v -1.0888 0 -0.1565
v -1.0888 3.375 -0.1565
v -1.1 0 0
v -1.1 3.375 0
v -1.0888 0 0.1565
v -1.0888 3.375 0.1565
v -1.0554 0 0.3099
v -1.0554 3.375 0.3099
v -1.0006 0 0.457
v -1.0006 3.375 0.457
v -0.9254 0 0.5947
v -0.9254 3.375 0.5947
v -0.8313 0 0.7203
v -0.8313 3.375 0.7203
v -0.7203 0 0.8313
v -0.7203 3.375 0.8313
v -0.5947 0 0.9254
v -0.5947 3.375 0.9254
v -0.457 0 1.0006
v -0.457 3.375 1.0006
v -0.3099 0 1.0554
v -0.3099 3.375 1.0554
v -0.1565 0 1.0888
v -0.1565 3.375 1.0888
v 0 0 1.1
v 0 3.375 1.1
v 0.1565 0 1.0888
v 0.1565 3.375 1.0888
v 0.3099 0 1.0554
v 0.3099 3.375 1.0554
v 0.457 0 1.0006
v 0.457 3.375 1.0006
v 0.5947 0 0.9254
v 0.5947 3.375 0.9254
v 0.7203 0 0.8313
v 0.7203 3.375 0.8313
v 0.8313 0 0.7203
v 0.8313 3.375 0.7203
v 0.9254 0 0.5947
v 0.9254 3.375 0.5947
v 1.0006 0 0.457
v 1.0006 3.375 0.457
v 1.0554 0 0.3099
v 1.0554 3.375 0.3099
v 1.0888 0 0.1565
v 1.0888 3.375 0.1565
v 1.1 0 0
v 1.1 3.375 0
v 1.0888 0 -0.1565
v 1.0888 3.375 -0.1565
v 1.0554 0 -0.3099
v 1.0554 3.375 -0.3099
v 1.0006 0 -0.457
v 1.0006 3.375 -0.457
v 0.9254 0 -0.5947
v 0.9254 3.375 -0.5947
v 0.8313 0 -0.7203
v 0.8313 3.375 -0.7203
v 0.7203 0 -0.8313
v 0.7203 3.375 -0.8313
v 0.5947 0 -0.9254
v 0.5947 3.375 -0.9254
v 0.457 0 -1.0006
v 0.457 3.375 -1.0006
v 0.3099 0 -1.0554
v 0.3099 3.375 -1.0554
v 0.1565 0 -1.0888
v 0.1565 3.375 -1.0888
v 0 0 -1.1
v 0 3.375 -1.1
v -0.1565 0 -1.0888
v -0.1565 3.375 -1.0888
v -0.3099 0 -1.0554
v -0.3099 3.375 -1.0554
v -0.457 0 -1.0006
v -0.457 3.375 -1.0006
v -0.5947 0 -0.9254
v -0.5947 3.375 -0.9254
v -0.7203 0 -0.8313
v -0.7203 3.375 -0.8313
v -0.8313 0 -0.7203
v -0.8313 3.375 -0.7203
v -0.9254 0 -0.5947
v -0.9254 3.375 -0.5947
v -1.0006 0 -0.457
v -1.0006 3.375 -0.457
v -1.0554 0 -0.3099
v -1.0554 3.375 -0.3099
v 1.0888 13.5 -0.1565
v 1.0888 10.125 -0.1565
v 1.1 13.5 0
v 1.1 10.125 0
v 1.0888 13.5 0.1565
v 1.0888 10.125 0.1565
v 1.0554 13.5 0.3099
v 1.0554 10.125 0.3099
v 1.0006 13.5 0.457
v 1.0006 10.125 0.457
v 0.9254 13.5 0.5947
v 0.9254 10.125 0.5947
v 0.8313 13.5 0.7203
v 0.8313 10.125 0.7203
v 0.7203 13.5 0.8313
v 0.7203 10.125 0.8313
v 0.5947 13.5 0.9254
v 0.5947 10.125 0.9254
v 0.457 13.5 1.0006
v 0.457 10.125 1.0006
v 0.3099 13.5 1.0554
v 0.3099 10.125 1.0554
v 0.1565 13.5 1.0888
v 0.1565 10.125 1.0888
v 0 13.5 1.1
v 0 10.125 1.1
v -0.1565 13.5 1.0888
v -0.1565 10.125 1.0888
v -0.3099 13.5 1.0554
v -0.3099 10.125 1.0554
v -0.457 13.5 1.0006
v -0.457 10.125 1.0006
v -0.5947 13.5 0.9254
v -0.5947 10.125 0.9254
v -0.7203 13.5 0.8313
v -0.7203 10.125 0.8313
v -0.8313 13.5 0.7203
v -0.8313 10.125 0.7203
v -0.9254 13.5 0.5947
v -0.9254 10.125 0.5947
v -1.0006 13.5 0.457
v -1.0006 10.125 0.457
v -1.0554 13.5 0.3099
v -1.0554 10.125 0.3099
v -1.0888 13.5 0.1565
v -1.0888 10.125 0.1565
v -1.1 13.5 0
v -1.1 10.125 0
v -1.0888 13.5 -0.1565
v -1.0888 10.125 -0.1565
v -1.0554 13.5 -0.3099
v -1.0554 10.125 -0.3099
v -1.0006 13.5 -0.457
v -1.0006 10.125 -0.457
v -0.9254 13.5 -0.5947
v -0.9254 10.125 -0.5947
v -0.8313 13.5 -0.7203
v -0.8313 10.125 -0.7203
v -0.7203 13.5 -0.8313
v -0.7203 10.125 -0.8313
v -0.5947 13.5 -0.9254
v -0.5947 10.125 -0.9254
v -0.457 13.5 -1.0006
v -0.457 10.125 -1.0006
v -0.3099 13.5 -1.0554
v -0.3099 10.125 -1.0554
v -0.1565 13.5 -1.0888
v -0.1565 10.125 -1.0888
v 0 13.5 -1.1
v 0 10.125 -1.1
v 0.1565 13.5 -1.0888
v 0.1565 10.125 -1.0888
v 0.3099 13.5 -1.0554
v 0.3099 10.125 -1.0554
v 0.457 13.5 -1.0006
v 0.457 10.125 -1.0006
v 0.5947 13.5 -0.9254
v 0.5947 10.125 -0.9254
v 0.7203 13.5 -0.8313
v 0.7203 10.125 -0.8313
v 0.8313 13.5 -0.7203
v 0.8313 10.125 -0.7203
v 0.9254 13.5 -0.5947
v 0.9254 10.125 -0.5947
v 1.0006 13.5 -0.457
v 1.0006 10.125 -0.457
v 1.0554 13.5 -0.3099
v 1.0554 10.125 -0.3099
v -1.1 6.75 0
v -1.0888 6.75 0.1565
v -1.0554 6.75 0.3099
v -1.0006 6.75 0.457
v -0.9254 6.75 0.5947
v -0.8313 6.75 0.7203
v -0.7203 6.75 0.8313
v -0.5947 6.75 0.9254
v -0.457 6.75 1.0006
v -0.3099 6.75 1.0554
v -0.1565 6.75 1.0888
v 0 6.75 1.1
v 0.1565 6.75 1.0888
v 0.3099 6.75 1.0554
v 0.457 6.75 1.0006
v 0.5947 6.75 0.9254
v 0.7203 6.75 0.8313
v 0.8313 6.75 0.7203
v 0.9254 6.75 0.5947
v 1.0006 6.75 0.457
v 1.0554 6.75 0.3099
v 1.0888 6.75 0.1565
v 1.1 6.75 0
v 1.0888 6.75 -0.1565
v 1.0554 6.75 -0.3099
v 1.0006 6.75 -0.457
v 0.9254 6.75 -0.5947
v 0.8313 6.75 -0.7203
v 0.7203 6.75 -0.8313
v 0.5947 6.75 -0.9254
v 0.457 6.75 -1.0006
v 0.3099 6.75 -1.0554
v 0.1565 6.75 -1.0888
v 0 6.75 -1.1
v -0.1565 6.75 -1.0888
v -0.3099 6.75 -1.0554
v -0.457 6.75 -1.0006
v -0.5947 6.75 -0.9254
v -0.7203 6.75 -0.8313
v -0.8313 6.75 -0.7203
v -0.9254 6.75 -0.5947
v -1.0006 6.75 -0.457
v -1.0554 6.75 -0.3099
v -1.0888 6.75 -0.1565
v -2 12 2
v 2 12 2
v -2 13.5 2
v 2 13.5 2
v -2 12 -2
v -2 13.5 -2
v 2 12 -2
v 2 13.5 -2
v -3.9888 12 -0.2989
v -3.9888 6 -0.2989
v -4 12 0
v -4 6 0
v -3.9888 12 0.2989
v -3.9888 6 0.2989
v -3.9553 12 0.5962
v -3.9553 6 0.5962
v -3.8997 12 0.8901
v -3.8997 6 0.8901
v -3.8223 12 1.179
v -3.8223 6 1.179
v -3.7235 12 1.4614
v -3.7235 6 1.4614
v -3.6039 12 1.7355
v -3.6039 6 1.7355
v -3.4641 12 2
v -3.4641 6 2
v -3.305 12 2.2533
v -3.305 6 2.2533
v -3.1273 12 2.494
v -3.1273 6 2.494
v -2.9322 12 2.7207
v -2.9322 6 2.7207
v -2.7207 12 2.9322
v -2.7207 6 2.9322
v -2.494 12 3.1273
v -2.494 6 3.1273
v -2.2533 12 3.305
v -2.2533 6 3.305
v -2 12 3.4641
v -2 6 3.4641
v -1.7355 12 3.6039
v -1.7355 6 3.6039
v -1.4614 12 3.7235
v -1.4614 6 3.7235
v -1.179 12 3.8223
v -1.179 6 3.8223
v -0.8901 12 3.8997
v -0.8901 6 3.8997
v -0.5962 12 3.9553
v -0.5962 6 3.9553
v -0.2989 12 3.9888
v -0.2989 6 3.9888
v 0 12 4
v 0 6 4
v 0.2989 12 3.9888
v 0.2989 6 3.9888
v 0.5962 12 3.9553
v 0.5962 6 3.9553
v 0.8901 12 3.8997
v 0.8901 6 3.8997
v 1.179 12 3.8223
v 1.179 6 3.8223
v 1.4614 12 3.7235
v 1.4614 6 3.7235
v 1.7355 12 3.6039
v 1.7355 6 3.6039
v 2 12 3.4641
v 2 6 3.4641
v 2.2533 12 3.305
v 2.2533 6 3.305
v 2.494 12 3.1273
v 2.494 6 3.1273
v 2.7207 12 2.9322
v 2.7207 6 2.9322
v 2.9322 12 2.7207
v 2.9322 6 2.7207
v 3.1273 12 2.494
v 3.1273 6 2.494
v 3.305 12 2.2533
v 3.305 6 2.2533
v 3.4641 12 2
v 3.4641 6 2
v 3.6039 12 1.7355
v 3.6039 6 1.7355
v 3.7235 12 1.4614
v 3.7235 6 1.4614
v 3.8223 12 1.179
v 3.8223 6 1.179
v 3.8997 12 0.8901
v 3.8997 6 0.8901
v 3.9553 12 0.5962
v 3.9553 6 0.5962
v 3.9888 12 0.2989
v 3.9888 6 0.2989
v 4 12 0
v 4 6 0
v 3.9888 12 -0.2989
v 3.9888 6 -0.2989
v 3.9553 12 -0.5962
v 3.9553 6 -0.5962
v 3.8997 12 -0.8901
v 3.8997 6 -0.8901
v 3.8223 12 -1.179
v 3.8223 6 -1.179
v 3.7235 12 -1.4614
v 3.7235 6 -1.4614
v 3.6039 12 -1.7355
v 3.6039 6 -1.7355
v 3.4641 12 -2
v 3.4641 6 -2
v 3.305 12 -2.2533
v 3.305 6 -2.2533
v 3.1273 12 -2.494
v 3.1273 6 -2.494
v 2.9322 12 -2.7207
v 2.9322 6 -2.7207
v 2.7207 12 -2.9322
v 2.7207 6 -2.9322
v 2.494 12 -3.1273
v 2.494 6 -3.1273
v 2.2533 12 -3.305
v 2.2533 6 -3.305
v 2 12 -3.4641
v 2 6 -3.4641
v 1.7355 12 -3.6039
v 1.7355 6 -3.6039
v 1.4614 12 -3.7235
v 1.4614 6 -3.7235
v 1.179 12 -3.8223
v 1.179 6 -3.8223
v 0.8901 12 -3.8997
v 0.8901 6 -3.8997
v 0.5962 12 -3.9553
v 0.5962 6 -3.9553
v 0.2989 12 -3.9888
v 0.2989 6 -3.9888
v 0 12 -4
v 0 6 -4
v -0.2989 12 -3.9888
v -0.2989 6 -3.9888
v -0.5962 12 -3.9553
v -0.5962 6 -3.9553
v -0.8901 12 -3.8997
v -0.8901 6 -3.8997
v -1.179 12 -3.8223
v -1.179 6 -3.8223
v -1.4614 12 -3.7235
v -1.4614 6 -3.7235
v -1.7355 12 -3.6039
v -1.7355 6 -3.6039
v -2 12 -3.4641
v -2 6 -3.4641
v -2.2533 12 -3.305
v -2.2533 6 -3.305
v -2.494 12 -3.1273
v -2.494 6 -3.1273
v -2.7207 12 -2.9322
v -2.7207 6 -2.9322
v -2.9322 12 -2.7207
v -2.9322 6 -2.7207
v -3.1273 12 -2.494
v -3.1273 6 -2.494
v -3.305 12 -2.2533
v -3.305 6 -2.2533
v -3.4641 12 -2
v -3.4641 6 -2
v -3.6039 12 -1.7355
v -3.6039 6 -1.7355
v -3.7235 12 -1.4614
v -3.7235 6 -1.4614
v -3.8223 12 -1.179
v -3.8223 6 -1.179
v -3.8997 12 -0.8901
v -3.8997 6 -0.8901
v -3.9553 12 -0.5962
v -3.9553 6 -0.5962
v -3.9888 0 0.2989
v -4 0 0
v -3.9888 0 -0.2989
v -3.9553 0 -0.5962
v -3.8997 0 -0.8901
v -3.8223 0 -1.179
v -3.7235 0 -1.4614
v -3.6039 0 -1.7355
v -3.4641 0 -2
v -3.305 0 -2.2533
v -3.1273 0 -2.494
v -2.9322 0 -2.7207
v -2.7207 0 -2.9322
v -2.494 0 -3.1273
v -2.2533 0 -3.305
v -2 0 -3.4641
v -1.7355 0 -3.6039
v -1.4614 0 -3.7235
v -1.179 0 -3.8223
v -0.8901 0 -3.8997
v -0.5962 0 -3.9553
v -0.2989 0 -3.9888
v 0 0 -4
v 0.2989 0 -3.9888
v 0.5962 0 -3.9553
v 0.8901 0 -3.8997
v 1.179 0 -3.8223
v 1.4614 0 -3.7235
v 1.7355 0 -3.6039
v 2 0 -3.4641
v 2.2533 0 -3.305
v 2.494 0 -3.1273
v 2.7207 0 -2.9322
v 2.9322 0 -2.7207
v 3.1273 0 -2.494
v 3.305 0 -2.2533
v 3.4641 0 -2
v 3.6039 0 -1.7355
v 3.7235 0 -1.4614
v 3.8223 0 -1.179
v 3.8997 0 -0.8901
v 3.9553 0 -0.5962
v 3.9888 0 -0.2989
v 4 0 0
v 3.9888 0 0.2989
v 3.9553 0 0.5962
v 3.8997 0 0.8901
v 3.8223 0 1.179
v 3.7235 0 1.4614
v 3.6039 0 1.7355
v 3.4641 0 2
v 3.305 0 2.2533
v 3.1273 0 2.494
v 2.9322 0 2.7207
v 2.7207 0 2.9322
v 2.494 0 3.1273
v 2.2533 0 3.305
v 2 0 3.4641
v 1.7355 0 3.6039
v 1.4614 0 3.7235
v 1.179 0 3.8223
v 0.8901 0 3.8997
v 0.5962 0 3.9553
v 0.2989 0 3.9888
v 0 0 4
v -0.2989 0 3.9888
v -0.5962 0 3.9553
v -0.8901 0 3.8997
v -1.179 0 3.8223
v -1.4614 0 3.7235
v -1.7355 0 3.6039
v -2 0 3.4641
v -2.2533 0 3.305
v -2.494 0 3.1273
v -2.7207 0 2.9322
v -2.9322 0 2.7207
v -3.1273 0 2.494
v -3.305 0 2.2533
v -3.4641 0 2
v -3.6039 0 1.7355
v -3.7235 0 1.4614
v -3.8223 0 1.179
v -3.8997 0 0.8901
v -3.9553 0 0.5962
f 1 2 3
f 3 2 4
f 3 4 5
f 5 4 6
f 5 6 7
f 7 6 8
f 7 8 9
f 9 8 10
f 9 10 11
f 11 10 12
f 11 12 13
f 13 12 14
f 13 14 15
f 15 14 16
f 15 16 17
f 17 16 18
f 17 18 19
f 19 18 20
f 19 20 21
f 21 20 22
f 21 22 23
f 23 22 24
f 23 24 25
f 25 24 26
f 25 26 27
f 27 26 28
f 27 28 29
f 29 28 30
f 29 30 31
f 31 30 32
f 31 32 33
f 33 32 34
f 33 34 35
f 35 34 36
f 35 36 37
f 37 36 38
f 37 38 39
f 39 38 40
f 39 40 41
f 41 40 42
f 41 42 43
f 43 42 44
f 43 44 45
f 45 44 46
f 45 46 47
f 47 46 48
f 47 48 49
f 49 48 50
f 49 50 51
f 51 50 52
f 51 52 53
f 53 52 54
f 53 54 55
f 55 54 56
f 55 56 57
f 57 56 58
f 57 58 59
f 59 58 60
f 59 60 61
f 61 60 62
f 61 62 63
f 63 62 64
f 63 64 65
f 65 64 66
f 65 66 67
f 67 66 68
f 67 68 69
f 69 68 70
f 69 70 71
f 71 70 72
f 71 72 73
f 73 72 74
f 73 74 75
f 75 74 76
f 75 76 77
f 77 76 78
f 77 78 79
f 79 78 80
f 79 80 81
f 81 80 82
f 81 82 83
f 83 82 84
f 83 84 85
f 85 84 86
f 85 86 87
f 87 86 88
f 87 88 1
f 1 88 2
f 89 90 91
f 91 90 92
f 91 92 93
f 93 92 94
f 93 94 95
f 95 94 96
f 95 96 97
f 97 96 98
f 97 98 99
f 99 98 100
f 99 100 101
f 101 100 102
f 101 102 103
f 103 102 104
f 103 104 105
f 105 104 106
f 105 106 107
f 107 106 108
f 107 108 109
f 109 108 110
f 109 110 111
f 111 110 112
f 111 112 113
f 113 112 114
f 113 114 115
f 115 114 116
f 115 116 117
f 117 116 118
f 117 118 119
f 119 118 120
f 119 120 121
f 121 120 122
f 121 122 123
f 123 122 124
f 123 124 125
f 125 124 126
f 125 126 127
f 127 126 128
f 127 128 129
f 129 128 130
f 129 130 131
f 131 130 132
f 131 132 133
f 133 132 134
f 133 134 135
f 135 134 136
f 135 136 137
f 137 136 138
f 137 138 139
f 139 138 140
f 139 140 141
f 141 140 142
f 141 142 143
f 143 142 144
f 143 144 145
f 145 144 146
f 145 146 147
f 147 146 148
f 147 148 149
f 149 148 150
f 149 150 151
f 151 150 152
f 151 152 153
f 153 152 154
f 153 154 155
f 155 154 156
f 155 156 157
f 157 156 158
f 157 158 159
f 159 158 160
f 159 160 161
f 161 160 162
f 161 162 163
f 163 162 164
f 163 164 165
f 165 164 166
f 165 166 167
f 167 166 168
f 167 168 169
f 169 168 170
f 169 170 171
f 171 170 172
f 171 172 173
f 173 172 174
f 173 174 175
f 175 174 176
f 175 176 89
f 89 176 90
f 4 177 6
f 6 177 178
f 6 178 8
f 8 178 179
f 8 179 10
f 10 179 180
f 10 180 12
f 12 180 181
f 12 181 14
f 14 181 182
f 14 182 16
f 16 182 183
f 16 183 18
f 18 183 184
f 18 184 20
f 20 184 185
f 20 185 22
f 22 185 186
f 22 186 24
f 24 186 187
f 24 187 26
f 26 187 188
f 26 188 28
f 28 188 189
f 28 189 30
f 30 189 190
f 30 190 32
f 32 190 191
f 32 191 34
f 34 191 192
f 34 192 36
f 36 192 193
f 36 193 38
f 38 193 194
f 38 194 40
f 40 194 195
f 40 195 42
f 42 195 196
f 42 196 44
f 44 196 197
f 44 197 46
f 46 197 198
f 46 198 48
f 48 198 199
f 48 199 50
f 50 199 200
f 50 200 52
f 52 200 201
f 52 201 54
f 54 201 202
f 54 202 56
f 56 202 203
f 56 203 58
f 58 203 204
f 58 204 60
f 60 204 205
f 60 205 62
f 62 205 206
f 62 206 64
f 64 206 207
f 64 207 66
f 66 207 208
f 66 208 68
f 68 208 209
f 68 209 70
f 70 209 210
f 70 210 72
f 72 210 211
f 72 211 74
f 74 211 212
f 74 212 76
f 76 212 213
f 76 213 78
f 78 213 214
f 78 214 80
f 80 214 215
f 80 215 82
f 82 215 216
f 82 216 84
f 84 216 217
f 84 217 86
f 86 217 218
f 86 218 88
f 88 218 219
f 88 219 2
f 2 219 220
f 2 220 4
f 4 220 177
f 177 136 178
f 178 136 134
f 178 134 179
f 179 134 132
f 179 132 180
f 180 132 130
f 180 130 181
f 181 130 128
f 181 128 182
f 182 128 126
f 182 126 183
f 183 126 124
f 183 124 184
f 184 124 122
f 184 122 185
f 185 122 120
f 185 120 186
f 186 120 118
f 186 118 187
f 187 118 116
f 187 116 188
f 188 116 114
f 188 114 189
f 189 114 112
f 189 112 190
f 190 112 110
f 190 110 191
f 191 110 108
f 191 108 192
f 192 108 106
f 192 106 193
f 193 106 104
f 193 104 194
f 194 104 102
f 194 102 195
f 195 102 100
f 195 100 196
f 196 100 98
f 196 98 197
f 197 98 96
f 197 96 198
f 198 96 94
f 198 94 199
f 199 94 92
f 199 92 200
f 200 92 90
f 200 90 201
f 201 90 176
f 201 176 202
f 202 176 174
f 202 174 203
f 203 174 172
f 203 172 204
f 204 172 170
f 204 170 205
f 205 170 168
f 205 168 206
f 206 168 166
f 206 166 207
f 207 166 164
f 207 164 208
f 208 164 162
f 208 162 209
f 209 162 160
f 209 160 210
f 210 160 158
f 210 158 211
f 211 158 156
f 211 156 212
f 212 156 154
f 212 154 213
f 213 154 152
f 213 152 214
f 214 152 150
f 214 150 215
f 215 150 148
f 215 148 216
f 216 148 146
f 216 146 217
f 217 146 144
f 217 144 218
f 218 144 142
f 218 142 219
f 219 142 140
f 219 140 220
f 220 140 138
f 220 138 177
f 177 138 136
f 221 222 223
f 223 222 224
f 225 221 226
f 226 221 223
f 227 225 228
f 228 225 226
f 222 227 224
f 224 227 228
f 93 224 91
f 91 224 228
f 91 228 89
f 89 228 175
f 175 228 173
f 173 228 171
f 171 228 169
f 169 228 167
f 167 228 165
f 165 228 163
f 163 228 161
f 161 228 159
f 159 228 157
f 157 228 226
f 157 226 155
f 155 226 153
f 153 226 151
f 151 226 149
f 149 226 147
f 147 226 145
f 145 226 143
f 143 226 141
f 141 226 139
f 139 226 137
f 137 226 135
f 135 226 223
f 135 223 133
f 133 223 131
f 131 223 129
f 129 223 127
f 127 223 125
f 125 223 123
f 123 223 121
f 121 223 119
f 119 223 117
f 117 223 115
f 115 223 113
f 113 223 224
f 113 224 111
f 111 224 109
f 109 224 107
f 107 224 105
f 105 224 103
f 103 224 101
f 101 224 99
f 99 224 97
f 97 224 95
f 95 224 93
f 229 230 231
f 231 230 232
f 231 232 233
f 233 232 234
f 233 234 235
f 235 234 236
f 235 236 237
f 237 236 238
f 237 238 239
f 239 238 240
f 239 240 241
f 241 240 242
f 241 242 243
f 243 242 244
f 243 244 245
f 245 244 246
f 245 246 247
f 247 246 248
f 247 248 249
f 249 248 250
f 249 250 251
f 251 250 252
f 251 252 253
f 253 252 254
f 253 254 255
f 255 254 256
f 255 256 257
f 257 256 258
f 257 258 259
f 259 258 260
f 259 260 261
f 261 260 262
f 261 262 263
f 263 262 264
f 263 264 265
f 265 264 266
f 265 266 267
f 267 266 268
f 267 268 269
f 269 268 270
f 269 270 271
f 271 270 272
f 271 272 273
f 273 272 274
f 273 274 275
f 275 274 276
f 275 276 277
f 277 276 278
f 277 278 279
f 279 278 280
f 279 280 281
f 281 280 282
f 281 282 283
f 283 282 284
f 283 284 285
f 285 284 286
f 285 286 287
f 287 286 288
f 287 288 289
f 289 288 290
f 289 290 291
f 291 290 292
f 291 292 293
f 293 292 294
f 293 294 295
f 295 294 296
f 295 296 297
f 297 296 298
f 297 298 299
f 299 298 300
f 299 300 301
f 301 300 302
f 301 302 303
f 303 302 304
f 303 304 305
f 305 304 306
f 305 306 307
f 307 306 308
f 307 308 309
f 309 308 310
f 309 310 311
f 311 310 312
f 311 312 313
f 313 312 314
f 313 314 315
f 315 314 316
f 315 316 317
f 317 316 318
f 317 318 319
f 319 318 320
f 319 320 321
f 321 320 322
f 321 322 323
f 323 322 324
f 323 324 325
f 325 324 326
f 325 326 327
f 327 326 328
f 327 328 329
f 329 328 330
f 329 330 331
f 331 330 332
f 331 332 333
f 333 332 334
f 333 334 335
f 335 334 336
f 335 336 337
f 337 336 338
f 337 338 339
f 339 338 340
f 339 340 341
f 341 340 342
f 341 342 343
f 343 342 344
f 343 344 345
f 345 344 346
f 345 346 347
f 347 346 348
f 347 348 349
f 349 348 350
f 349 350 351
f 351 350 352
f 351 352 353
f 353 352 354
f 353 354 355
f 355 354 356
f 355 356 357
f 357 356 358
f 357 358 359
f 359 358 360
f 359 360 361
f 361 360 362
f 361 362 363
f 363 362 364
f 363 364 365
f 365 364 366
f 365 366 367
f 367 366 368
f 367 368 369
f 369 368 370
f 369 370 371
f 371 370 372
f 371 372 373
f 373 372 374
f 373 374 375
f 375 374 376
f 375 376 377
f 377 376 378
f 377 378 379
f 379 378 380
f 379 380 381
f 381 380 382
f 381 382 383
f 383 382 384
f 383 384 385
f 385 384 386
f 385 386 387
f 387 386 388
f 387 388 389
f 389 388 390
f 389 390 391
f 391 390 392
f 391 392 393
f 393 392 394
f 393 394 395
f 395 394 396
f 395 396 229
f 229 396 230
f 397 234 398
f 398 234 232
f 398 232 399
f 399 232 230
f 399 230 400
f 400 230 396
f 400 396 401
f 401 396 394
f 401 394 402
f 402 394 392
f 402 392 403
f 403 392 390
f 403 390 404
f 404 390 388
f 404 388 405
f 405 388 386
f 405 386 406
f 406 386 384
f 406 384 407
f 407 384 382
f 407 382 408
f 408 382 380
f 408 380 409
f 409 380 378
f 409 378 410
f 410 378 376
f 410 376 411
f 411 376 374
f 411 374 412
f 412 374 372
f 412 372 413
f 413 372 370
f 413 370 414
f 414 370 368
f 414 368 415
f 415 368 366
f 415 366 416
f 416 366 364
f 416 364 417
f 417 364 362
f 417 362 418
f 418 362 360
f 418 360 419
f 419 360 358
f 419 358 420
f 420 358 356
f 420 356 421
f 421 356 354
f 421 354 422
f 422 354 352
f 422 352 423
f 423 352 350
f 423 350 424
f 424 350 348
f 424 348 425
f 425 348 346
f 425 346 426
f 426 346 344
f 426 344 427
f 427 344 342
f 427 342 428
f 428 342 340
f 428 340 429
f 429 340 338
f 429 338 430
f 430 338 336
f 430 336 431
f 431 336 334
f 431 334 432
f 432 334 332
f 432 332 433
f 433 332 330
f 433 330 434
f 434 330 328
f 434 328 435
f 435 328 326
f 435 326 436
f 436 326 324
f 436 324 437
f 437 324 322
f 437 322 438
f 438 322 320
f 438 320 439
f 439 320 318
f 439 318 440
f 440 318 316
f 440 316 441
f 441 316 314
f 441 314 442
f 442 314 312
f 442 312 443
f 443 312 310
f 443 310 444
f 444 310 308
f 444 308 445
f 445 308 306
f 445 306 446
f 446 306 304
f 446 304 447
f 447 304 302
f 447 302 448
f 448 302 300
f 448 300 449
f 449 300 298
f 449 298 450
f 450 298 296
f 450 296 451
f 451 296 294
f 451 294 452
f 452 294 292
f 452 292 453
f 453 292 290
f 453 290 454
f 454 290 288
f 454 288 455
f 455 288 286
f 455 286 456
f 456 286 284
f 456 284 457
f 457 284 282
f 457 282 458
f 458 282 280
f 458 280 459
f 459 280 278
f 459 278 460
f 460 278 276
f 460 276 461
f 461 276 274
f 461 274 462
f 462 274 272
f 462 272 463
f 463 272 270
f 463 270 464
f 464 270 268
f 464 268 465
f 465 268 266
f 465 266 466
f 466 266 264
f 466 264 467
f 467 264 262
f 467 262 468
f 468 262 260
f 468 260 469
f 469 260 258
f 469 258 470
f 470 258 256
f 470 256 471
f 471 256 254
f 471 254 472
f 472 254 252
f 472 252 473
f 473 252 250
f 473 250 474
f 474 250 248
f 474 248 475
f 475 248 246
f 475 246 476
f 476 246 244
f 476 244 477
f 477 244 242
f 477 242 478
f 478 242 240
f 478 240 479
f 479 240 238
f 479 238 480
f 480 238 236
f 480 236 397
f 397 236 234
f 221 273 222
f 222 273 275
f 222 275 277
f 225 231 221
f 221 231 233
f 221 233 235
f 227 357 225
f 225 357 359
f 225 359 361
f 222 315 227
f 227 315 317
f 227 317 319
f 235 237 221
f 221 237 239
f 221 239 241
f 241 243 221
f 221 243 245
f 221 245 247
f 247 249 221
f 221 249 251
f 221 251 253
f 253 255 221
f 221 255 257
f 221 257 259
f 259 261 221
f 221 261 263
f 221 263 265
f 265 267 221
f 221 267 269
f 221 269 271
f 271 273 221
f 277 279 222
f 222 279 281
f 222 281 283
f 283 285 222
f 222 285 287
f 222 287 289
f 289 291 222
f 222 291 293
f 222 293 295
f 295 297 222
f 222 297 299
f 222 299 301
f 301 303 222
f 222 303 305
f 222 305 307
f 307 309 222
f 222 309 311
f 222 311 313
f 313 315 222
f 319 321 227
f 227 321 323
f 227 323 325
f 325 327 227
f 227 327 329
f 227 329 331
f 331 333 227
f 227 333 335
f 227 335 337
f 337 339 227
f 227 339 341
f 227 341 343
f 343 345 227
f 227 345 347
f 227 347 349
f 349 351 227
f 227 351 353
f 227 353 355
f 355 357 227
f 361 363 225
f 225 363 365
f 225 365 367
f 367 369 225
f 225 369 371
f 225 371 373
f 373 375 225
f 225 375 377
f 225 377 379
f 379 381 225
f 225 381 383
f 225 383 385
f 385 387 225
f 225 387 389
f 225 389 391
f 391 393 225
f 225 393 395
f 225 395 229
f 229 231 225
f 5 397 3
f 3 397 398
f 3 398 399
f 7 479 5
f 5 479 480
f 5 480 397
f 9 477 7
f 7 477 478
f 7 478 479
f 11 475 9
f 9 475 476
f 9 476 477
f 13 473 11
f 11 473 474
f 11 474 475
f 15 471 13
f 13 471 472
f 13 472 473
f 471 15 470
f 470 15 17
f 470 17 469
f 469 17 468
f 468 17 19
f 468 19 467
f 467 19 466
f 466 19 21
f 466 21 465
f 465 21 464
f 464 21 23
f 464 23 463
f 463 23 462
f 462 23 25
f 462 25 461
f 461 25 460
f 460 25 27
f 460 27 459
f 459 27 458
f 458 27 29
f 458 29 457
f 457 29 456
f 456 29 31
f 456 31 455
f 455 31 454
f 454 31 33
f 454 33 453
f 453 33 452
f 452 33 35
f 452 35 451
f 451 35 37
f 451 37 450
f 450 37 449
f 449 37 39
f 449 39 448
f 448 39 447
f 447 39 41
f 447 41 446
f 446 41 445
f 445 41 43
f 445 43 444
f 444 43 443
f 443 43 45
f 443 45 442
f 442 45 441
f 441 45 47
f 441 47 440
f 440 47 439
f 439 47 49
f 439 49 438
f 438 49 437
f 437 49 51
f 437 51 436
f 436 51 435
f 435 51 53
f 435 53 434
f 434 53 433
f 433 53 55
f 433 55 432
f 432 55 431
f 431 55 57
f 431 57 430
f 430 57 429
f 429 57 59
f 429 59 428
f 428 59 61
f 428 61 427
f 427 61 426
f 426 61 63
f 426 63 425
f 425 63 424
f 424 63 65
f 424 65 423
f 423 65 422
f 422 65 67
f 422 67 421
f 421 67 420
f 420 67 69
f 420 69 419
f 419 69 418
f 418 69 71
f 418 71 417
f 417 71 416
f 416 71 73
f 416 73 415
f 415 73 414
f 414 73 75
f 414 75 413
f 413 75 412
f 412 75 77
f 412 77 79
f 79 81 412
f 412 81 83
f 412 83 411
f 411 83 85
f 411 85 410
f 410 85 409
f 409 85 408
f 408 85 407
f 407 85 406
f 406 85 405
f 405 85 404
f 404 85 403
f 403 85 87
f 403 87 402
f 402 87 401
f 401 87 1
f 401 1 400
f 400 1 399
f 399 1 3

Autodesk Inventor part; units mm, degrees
ref_plane "YZ Plane" through (0, 0, 0) normal (1, 0, 0) x (0, 1, 0)
ref_plane "XZ Plane" through (0, 0, 0) normal (0, 1, 0) x (-1, 0, 0)
ref_plane "XY Plane" through (0, 0, 0) normal (0, 0, 1) x (1, 0, 0)
sketch "Sketch1" plane through (0, 0, 0) normal (0, 1, 0) x (-1, 0, 0)
  circle A0 centre (0, 0) radius 4
  dimension "d0" = 8
extrude "Extrusion1" add sketch "Sketch1" along normal blind 12
sketch "Sketch2" plane through (0, 12, 0) normal (0, 1, 0) x (1, 0, 0)
  line L0 (-2, -2) -> (2, -2)
  line L1 (2, -2) -> (2, 2)
  line L2 (2, 2) -> (-2, 2)
  line L3 (-2, 2) -> (-2, -2)
  point P0 (0, 0)
  dimension "d3" = 4
  dimension "d4" = 4
  dimension "d5" = 2
  dimension "d6" = 2
extrude "Extrusion2" add sketch "Sketch2" along normal blind 1.5
sketch "Sketch3" plane through (0, 13.5, 0) normal (0, 1, 0) x (1, 0, 0)
  circle A0 centre (0, 0) radius 1.1
  dimension "d9" = 2.2
extrude "Extrusion3" cut sketch "Sketch3" against normal through all
properties part number "axe_top"
